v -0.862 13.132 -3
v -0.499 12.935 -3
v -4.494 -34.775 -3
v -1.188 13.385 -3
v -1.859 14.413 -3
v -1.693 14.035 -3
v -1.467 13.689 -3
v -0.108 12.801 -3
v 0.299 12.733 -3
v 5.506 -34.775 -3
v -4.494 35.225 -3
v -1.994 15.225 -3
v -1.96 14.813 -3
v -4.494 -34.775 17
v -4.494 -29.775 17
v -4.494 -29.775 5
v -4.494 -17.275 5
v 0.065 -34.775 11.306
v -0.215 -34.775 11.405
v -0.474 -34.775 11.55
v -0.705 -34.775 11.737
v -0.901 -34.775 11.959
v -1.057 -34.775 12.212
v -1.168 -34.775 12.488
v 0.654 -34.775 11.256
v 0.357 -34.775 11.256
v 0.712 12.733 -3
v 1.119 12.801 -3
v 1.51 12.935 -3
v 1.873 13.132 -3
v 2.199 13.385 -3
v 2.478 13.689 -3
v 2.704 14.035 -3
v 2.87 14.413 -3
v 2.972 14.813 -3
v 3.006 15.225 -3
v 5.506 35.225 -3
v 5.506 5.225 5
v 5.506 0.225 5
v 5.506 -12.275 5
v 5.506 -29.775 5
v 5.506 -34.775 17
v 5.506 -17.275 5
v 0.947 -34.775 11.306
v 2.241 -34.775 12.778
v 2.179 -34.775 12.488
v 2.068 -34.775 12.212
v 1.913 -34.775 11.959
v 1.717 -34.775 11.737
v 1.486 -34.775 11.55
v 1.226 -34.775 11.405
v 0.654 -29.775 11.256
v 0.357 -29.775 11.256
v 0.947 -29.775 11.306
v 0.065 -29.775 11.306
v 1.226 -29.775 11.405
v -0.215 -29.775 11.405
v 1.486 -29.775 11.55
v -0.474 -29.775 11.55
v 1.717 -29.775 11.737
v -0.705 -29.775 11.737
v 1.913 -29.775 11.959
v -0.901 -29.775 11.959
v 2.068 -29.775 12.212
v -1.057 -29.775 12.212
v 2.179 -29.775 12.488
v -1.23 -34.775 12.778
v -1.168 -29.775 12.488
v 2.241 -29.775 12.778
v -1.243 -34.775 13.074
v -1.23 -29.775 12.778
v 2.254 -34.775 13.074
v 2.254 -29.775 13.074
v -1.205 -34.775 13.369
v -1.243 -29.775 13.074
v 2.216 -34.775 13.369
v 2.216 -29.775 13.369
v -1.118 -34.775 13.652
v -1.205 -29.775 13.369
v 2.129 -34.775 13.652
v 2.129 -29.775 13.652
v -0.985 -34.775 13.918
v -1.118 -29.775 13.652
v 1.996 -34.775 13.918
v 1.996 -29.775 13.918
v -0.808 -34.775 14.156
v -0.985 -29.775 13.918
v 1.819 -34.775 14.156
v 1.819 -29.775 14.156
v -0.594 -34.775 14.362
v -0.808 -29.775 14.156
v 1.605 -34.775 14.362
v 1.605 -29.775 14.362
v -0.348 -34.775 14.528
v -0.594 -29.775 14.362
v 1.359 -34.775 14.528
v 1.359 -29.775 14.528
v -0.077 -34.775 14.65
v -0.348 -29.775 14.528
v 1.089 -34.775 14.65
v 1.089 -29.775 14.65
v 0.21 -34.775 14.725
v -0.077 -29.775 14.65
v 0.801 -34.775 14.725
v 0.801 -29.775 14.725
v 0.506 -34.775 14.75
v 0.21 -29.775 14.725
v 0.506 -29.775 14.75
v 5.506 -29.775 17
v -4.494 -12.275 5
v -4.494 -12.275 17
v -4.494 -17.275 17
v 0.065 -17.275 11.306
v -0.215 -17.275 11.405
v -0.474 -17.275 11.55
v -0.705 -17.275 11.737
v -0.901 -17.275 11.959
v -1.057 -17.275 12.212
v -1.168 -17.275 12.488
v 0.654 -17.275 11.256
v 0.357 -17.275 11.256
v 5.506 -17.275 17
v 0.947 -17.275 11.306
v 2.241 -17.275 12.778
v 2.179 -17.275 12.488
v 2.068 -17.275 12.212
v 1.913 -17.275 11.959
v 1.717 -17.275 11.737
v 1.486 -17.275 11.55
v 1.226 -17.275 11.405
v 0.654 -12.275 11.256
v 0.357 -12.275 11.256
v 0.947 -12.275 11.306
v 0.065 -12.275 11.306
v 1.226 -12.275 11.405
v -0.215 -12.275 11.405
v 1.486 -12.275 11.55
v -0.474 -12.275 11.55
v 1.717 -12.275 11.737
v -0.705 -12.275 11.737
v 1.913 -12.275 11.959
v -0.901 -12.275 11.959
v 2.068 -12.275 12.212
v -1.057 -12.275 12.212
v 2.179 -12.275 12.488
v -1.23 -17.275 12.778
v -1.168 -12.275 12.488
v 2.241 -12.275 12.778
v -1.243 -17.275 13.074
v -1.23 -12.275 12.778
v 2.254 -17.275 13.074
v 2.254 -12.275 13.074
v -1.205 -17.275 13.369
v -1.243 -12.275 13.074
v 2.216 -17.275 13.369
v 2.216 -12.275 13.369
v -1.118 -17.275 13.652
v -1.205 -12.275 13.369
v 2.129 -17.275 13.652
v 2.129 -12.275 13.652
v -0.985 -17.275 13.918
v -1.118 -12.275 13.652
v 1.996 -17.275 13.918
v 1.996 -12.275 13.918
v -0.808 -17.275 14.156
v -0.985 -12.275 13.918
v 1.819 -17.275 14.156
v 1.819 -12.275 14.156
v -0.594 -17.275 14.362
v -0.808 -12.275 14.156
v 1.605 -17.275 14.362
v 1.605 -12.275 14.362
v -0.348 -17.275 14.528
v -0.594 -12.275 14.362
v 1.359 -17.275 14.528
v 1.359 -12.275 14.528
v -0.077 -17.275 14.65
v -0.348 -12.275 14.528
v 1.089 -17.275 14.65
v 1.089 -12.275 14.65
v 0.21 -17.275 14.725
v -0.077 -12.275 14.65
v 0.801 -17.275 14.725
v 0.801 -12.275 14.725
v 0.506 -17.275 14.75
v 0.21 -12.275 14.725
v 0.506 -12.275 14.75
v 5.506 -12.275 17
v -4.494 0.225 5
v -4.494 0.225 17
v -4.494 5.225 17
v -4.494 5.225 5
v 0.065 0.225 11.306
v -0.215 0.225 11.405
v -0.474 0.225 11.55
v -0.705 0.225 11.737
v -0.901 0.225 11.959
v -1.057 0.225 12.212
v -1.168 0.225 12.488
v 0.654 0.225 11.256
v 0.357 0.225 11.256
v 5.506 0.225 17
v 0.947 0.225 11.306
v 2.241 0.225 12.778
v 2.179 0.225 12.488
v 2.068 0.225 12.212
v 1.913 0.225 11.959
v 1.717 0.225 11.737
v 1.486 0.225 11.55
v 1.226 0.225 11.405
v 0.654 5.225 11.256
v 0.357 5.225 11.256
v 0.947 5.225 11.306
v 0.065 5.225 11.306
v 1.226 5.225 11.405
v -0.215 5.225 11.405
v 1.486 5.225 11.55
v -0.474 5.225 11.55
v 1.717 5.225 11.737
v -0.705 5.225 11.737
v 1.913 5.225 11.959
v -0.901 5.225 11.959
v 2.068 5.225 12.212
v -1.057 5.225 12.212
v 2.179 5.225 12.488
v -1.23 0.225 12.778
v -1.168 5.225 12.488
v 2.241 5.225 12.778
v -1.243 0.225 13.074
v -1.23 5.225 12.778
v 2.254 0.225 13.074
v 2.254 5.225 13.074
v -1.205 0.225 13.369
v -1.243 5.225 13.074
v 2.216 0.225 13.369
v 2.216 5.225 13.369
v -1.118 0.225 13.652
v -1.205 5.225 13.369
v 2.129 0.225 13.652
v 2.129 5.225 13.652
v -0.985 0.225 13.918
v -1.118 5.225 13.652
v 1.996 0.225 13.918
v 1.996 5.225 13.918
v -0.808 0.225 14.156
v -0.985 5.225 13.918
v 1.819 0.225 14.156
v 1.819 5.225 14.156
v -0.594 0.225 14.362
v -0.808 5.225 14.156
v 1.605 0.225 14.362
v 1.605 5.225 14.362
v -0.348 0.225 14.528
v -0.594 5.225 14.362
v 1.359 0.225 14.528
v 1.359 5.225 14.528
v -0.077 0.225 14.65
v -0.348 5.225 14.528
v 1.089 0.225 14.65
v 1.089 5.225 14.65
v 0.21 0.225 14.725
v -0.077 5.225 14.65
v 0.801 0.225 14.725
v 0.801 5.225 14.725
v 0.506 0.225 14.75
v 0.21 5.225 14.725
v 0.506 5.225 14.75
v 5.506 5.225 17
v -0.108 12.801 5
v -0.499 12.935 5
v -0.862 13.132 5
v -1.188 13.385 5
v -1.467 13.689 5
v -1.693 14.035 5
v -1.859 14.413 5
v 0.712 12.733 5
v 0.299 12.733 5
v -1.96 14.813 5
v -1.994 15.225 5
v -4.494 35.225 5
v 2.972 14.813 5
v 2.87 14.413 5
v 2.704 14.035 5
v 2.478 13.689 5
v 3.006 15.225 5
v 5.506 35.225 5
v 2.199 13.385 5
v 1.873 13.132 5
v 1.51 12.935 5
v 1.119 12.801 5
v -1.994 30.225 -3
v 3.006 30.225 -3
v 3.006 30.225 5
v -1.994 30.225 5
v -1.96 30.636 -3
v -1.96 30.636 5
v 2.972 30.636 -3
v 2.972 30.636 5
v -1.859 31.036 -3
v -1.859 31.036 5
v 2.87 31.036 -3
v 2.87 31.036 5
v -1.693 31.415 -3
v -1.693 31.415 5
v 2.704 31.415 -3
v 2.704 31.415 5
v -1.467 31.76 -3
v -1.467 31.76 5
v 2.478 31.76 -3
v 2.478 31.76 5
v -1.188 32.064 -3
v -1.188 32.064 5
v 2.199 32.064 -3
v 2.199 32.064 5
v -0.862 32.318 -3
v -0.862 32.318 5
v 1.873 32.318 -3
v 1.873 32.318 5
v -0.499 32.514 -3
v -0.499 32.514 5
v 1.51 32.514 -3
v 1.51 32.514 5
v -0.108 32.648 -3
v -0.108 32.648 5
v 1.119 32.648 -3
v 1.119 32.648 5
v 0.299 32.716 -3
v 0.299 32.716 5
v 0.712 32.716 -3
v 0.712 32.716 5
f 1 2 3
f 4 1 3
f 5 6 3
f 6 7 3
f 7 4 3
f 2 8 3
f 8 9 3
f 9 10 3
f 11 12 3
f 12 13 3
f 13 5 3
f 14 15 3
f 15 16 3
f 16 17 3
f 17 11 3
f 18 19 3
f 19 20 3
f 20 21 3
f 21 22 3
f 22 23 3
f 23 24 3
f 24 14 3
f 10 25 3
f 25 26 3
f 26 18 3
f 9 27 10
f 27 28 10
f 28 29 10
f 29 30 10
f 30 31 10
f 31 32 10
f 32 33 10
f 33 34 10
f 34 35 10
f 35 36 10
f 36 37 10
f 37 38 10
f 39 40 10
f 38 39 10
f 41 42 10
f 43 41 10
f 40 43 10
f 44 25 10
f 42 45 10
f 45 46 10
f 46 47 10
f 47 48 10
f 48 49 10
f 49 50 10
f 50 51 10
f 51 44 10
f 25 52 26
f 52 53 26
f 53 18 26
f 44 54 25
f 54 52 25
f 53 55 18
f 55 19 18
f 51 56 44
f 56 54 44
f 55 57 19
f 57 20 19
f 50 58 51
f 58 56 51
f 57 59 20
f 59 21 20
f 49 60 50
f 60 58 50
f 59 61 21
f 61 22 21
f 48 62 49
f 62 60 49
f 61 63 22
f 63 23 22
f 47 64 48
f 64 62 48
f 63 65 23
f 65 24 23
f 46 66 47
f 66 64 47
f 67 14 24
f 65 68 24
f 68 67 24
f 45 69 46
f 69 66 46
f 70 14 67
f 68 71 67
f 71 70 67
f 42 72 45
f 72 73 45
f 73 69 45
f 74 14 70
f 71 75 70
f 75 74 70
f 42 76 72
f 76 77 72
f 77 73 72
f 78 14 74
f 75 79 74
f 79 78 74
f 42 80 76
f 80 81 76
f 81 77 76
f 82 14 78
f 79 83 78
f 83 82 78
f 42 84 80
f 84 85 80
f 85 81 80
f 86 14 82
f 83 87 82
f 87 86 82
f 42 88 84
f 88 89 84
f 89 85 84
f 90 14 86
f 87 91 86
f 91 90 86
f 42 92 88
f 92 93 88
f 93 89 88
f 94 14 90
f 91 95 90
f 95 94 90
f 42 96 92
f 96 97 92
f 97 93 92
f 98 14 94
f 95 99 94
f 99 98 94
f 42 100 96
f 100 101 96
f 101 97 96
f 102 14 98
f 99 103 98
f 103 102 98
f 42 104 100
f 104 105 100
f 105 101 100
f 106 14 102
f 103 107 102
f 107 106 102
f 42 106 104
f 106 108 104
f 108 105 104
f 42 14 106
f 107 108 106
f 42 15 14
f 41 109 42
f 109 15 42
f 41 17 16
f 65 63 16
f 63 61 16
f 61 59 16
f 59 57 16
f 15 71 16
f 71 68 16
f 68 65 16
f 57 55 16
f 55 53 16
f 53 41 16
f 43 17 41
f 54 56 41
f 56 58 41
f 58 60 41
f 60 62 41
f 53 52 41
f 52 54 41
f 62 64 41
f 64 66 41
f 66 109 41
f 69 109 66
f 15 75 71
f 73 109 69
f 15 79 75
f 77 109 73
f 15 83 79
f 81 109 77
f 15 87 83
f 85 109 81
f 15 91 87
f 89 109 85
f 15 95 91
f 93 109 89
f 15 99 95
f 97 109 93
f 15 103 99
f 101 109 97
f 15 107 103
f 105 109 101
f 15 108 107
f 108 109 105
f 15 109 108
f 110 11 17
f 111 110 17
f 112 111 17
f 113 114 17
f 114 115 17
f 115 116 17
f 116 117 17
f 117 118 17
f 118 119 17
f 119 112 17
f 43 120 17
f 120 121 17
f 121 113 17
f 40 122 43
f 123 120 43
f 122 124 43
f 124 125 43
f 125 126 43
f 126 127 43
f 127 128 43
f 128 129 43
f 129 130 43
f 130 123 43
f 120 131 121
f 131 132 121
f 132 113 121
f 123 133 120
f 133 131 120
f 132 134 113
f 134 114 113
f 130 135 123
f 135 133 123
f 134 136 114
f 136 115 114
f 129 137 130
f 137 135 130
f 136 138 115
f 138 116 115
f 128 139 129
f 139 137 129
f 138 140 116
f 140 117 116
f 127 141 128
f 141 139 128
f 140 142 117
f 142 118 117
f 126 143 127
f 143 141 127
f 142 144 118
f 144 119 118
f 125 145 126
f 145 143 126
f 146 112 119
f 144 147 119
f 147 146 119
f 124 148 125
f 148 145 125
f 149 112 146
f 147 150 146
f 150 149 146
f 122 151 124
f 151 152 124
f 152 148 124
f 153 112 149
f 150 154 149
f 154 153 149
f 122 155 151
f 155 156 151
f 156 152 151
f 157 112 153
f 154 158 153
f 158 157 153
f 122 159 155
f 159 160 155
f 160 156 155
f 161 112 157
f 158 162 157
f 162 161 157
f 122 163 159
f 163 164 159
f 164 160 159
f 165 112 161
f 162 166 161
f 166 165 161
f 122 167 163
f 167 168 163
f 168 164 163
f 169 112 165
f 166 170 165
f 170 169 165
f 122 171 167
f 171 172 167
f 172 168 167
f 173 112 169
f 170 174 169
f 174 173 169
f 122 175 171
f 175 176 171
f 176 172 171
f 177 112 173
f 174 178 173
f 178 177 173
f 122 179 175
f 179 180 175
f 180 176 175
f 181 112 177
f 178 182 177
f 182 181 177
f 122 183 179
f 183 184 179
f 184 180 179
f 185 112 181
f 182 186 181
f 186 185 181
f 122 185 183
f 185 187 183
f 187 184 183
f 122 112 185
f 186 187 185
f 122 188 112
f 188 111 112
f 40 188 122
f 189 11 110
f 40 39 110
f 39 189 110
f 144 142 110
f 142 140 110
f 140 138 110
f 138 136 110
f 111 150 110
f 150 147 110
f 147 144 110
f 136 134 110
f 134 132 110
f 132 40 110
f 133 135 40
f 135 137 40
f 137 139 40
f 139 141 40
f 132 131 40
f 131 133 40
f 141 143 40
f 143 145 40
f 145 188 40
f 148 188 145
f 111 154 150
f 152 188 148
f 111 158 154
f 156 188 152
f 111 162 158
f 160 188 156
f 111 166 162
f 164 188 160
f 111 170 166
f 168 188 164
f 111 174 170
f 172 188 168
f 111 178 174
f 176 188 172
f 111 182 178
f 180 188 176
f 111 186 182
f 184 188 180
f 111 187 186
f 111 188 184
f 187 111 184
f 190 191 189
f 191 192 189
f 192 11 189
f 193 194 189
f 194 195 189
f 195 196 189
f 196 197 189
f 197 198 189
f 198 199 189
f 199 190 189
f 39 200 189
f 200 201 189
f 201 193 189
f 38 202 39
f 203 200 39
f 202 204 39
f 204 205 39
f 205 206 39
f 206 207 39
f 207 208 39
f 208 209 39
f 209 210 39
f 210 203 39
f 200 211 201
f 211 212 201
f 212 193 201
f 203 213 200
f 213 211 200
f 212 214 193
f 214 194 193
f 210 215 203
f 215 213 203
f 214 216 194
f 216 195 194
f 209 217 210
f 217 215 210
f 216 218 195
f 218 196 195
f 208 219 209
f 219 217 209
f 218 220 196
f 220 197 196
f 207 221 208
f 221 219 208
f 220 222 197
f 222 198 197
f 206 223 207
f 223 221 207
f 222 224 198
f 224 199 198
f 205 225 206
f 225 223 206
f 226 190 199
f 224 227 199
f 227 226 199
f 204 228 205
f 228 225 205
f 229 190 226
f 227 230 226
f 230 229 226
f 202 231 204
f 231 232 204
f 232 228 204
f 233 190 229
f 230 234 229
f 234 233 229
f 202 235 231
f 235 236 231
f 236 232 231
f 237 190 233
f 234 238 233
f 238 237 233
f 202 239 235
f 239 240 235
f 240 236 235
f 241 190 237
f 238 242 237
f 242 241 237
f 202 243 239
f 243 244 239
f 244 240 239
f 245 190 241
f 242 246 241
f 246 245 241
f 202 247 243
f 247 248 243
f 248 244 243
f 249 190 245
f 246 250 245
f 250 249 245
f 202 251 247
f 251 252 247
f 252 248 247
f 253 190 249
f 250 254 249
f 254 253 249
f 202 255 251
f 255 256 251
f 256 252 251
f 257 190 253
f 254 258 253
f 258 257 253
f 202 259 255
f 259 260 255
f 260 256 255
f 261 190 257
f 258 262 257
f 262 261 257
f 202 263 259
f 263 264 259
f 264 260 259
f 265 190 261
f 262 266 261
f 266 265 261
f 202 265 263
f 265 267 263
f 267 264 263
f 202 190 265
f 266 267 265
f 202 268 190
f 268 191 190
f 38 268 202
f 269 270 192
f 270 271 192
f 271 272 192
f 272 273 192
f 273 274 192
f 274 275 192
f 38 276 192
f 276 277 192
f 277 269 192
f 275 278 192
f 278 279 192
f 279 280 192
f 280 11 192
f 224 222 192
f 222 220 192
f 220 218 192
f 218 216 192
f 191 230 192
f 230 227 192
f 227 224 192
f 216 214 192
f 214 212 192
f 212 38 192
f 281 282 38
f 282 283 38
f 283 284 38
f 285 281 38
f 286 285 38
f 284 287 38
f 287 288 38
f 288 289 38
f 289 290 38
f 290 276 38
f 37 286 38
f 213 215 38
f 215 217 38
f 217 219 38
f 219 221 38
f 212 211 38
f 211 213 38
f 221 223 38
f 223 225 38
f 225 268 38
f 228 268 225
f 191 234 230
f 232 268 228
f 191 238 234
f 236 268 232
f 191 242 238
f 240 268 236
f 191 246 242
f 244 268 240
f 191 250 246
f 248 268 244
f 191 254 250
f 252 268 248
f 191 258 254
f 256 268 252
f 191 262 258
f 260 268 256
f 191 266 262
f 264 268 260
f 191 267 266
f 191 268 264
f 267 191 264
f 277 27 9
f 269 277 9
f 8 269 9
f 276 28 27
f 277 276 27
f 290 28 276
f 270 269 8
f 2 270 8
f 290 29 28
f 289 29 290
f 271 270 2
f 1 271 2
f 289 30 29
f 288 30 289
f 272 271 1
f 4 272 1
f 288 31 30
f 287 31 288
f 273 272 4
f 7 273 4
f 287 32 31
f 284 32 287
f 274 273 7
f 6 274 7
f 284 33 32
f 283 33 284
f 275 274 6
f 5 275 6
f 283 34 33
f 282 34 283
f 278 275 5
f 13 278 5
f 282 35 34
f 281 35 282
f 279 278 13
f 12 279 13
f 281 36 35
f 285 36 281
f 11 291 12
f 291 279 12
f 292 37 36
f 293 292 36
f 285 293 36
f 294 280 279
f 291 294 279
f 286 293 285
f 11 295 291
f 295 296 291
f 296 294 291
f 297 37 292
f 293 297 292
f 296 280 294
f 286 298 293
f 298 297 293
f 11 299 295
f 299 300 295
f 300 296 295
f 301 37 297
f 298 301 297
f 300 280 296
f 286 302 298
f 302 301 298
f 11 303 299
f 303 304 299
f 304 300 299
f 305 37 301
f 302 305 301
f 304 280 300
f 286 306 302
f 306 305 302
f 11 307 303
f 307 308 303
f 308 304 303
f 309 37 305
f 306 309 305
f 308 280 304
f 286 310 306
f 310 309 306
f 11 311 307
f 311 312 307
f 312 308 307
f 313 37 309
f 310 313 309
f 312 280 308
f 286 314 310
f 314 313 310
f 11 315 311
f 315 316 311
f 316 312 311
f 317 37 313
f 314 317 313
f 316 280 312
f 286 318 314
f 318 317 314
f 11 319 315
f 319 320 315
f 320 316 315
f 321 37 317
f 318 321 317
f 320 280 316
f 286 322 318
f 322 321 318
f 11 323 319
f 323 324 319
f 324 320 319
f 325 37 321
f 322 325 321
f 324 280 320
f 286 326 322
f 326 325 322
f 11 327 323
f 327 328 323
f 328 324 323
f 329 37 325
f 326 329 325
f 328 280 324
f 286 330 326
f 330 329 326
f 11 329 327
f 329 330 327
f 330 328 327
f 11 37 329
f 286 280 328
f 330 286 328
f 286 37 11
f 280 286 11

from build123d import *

# Parameters (mm, degrees)
SKETCH_1_W          = 10
SKETCH_1_H          = 20
SKETCH_1_R          = 2.5
EXTRUDE_1_DEPTH     = 5
SKETCH_1_H_2        = 12.5
EXTRUDE_1_2_DEPTH   = 5
EXTRUDE_1_3_DEPTH   = 5
SKETCH_1_3_W        = 10
SKETCH_1_3_H        = 5
EXTRUDE_2_DEPTH     = 17
SKETCH_2_R          = 1.75
CUT_EXTRUDE_1_DEPTH = 49
SKETCH_3_W          = 3
SKETCH_3_H          = 60
EXTRUDE_3_DEPTH     = 10
SKETCH_4_W          = 10
SKETCH_4_H          = 10
SKETCH_4_R          = 2.5
EXTRUDE_4_DEPTH     = 8
CUT_EXTRUDE_2_DEPTH = 8


with BuildPart() as part:
    # 草图1 → 凸台-拉伸1 (new body)
    with BuildSketch(Plane.XY):
        with Locations((0.505617978, 15.224719101)):
            Rectangle(SKETCH_1_W, SKETCH_1_H)
        with Locations((0.505617978, 15.224719101)):
            Circle(SKETCH_1_R, mode=Mode.SUBTRACT)
    extrude(amount=EXTRUDE_1_DEPTH)



with BuildPart() as body_2:
    # 草图1 → Extrude 1 2 (new body)
    with BuildSketch(Plane.XY):
        with Locations((0.505617978, -6.025280899)):
            Rectangle(SKETCH_1_W, SKETCH_1_H_2)
    extrude(amount=EXTRUDE_1_2_DEPTH)


with BuildPart() as body_3:
    # 草图1 → Extrude 1 3 (new body)
    with BuildSketch(Plane.XY):
        with Locations((0.505617978, -23.525280899)):
            Rectangle(SKETCH_1_W, SKETCH_1_H_2)
    extrude(amount=EXTRUDE_1_3_DEPTH)


with BuildPart() as part_1:
    add(part.part)

    add(body_2.part)  # 凸台-拉伸2 merges body 2

    add(body_3.part)  # 凸台-拉伸2 merges body 3
    # 草图1<3> → 凸台-拉伸2 (add)
    with BuildSketch(Plane.XY):
        with Locations((0.505617978, 2.724719101)):
            Rectangle(SKETCH_1_3_W, SKETCH_1_3_H)
        with Locations((0.505617978, -14.775280899)):
            Rectangle(SKETCH_1_3_W, SKETCH_1_3_H)
        with Locations((0.505617978, -32.275280899)):
            Rectangle(SKETCH_1_3_W, SKETCH_1_3_H)
    extrude(amount=EXTRUDE_2_DEPTH)

    # 草图2 → 切除-拉伸1 (cut)
    with BuildSketch(Plane(origin=(0, 5.224719101, 0), x_dir=(1, 0, 0), z_dir=(0, 1, 0))):
        with Locations((0.505617978, -13)):
            Circle(SKETCH_2_R)
    extrude(amount=-CUT_EXTRUDE_1_DEPTH, mode=Mode.SUBTRACT)

    # 草图3 → 凸台-拉伸3 (add)
    with BuildSketch(Plane(origin=(5.505617978, 0, 0), x_dir=(0, 0, -1), z_dir=(1, 0, 0))):
        with Locations((1.5, -4.775280899)):
            Rectangle(SKETCH_3_W, SKETCH_3_H)
    extrude(amount=-EXTRUDE_3_DEPTH)

    # 草图4 → 凸台-拉伸4 (add)
    with BuildSketch(Plane.XY.offset(5)):
        with Locations((0.505617978, 30.224719101)):
            Rectangle(SKETCH_4_W, SKETCH_4_H)
        with Locations((0.505617978, 30.224719101)):
            Circle(SKETCH_4_R, mode=Mode.SUBTRACT)
    extrude(amount=-EXTRUDE_4_DEPTH)

    # 草图6 → 切除-拉伸2 (cut)
    with BuildSketch(Plane.XY.offset(5)):
        with BuildLine():
            Line((3.005617978, 15.224719101), (3.005617978, 30.224719101))
            ThreePointArc((3.005617978, 30.224719101), (0.505617978, 32.724719101), (-1.994382022, 30.224719101))
            Line((-1.994382022, 30.224719101), (-1.994382022, 15.224719101))
            ThreePointArc((-1.994382022, 15.224719101), (0.505617978, 12.724719101), (3.005617978, 15.224719101))
        make_face()
    extrude(amount=-CUT_EXTRUDE_2_DEPTH, mode=Mode.SUBTRACT)


solid = part_1.part
